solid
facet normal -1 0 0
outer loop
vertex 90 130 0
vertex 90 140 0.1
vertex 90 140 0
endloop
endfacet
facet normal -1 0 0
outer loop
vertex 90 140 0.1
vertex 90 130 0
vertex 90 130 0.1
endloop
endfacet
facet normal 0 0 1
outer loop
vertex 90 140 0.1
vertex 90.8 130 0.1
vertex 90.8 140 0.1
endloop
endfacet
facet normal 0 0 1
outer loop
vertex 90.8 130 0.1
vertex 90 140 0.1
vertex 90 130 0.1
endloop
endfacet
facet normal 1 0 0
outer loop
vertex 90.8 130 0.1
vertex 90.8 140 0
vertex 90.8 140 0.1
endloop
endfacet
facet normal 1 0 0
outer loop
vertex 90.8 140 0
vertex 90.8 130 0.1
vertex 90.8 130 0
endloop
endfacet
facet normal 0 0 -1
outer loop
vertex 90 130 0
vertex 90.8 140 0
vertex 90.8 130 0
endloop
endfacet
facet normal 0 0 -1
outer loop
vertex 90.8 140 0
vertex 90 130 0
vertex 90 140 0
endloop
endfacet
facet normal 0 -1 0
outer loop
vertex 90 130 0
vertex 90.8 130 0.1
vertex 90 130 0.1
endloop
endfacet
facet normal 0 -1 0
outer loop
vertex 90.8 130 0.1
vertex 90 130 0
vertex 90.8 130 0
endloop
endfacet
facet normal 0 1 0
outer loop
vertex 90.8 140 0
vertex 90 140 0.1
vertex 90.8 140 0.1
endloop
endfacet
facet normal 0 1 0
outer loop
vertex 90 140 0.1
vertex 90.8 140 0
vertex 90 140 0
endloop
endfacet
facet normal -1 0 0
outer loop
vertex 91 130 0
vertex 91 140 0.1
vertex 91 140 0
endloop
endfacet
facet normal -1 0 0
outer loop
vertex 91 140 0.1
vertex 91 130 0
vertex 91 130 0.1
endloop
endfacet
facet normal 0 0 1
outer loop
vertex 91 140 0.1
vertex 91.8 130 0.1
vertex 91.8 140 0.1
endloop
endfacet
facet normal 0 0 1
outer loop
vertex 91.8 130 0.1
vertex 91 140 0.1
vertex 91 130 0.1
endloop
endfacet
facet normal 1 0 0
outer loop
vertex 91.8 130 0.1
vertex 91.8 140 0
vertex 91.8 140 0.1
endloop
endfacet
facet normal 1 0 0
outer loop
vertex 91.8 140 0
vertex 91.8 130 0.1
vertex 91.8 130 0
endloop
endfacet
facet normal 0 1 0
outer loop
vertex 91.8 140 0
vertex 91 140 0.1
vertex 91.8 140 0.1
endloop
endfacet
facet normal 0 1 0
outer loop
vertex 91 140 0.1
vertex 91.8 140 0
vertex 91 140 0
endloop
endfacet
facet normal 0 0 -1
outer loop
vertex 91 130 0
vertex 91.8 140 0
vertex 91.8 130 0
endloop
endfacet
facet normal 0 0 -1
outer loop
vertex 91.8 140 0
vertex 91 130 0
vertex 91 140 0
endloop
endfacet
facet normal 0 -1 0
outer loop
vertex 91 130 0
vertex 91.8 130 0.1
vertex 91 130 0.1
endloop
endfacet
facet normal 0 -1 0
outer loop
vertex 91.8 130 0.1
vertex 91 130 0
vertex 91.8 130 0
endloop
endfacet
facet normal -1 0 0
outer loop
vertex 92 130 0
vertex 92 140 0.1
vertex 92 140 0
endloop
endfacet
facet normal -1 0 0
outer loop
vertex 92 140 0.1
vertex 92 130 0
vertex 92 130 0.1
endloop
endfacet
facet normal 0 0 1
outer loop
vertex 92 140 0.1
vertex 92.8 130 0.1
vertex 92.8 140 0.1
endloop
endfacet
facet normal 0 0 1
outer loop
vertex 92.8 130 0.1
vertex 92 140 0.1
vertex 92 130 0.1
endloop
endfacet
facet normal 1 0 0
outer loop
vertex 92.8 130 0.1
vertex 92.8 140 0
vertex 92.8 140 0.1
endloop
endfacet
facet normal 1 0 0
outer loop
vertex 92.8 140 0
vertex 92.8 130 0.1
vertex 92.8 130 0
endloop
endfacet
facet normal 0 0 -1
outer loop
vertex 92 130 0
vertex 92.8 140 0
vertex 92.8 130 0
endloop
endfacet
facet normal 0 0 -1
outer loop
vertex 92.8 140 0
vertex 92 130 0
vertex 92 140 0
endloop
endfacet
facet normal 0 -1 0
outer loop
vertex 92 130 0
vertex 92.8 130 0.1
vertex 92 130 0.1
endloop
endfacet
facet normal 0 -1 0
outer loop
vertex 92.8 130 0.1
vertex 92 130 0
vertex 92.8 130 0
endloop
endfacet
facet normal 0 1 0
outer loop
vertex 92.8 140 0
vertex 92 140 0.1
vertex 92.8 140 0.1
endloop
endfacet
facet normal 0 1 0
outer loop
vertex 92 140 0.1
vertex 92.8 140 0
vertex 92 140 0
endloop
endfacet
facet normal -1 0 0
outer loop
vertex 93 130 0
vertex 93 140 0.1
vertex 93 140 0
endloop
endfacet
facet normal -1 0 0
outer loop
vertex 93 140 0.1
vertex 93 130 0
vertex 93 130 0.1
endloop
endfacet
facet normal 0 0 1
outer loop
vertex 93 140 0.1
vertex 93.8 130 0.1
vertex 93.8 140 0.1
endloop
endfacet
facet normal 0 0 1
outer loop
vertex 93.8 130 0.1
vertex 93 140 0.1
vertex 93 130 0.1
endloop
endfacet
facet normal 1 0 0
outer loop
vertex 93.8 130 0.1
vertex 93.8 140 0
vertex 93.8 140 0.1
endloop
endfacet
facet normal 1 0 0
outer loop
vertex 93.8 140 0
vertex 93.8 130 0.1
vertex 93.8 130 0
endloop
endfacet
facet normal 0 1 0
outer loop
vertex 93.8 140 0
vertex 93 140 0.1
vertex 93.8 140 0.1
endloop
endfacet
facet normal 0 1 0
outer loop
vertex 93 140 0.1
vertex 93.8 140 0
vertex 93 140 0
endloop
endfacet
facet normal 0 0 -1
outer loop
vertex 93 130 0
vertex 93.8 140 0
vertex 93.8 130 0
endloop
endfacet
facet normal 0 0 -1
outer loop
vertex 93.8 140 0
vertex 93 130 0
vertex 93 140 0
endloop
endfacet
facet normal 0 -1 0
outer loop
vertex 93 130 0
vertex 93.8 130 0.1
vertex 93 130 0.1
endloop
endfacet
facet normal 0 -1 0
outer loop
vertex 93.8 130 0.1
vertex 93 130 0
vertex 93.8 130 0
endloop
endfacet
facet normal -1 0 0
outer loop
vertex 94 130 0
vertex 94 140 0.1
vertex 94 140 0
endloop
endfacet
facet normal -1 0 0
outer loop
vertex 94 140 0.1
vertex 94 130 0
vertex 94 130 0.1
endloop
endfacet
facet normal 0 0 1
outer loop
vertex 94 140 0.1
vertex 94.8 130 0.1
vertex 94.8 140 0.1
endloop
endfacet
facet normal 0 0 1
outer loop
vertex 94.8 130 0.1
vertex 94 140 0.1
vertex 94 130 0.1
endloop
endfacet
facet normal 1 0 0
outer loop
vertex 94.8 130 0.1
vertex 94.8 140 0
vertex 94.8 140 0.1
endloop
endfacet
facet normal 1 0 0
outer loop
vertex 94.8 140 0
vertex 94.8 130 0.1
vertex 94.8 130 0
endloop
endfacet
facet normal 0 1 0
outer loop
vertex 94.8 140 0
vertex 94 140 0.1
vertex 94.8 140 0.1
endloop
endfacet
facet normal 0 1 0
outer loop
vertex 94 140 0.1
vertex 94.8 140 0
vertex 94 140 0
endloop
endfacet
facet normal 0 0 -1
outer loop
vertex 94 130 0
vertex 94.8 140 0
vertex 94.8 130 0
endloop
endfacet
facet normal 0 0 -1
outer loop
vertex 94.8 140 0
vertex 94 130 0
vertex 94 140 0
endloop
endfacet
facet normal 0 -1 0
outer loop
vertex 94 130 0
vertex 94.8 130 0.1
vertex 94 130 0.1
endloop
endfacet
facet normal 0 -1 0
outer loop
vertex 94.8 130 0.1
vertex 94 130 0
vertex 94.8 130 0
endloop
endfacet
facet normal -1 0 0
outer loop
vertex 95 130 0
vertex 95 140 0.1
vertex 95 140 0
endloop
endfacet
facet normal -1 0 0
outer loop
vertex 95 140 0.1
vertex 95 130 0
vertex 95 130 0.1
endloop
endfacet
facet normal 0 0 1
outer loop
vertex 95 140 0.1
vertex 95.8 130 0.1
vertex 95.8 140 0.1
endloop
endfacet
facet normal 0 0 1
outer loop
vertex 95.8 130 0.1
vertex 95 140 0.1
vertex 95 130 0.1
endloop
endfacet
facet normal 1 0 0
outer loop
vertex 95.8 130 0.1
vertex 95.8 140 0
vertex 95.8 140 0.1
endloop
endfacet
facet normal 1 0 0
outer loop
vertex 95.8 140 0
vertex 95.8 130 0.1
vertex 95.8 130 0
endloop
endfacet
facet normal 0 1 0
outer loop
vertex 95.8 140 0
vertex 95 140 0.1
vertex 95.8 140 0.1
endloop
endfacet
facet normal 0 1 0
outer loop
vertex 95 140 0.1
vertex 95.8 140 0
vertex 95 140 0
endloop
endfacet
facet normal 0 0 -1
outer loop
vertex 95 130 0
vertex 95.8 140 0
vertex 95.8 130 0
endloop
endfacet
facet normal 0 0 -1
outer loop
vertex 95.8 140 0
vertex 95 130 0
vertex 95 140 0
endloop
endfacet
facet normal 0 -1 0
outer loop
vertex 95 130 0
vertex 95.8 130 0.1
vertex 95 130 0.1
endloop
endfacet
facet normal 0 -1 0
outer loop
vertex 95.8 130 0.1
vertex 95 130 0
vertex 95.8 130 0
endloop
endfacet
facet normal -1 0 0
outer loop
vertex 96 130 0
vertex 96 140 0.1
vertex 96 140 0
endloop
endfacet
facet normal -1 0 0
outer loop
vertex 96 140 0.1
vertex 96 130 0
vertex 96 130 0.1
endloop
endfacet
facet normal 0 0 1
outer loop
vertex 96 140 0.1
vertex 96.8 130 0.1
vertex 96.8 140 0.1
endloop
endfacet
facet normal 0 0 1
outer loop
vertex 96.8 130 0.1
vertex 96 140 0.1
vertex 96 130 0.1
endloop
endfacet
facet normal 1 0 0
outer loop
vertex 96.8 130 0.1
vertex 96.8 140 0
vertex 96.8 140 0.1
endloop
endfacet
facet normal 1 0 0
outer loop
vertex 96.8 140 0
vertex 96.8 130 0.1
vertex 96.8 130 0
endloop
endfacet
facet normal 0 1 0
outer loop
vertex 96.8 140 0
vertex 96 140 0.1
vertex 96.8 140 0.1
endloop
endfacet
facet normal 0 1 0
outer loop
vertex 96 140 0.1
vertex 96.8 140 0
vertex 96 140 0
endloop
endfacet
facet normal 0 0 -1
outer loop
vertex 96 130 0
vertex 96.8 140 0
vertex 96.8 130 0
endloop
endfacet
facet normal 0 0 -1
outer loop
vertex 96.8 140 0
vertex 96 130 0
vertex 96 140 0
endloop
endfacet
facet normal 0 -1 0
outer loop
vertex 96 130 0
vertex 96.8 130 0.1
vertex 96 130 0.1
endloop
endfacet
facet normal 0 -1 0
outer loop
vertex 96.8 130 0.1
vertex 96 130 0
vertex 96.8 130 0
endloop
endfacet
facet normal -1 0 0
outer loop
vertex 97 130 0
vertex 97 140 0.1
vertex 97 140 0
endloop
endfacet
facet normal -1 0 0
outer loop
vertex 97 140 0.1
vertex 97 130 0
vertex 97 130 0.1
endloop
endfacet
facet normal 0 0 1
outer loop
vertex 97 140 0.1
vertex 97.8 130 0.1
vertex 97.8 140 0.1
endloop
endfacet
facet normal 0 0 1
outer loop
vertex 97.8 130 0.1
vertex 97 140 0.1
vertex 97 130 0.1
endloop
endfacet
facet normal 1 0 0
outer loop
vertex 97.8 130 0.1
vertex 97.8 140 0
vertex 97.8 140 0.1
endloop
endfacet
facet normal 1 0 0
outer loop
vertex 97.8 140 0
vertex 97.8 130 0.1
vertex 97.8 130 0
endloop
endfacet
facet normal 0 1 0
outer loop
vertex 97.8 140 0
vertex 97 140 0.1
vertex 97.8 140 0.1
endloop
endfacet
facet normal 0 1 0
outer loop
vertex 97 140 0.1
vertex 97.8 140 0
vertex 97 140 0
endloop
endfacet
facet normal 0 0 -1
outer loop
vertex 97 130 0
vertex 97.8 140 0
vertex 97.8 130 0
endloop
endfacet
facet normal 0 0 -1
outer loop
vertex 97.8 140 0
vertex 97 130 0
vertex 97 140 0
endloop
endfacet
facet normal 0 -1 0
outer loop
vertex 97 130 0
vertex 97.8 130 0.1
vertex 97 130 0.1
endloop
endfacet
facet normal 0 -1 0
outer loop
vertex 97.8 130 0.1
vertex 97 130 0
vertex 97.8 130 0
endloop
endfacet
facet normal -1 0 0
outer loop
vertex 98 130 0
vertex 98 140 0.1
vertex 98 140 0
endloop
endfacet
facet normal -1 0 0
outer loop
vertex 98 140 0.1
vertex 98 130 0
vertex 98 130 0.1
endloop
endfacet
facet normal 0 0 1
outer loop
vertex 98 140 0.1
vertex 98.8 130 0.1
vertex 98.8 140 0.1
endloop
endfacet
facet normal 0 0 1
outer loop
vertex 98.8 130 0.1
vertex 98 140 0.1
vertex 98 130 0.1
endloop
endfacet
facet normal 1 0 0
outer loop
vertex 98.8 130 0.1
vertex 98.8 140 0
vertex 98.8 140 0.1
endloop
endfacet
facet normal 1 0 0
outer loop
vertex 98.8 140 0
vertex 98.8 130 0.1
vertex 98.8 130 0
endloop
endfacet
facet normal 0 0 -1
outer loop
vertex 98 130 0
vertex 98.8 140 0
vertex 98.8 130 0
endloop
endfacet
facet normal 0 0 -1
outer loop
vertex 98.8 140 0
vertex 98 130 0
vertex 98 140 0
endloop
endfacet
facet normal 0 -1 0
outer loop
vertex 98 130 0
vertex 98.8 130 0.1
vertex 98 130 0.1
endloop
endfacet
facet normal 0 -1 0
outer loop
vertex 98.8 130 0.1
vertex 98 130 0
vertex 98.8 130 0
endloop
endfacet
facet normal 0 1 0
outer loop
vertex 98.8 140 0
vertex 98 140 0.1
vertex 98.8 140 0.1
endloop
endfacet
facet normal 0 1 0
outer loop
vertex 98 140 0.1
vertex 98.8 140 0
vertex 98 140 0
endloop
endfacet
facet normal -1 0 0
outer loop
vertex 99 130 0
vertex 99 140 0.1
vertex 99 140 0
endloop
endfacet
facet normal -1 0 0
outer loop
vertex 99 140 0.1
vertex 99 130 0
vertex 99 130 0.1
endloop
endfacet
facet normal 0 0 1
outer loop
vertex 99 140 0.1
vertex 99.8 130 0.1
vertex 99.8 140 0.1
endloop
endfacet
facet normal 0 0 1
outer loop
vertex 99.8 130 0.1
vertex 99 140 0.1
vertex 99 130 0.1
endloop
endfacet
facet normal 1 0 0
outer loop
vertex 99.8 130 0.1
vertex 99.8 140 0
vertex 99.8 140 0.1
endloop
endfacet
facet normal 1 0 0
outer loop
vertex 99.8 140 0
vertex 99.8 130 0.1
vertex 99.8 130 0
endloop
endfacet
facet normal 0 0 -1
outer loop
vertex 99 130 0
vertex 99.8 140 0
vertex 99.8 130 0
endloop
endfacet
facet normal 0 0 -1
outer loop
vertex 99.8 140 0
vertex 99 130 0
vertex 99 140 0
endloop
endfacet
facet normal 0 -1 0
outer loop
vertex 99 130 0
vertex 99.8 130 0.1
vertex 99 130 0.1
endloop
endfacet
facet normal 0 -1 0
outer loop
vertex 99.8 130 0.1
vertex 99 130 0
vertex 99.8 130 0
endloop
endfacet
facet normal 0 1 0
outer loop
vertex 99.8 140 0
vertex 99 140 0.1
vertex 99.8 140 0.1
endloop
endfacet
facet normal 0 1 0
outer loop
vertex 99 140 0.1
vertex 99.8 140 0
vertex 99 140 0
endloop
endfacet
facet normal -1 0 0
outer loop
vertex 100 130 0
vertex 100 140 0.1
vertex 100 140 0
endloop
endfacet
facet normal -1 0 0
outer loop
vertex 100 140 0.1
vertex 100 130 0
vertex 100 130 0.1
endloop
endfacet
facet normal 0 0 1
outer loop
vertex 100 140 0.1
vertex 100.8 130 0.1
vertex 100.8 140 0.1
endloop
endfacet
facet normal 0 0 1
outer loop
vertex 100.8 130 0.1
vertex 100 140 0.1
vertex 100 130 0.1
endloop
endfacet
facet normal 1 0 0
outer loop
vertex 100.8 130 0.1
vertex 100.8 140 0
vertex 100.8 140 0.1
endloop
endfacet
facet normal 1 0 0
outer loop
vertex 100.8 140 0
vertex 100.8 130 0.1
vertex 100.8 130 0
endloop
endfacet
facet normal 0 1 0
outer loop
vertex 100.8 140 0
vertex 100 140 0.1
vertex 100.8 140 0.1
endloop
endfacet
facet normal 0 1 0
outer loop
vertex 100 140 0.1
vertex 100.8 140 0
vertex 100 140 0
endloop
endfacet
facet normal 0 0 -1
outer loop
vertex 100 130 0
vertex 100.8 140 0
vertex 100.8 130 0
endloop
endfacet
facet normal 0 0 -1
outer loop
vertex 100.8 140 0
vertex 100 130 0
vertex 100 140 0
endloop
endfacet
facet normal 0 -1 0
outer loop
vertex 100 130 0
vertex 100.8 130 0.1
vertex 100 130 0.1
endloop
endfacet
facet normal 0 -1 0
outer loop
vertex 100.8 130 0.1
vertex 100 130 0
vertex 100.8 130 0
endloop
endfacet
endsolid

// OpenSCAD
translate([10+80,10+120,0])
        for (i = [0 : 10]){
            translate([i,0,0])
                cube(size = [0.8,10,0.1]);
    }
